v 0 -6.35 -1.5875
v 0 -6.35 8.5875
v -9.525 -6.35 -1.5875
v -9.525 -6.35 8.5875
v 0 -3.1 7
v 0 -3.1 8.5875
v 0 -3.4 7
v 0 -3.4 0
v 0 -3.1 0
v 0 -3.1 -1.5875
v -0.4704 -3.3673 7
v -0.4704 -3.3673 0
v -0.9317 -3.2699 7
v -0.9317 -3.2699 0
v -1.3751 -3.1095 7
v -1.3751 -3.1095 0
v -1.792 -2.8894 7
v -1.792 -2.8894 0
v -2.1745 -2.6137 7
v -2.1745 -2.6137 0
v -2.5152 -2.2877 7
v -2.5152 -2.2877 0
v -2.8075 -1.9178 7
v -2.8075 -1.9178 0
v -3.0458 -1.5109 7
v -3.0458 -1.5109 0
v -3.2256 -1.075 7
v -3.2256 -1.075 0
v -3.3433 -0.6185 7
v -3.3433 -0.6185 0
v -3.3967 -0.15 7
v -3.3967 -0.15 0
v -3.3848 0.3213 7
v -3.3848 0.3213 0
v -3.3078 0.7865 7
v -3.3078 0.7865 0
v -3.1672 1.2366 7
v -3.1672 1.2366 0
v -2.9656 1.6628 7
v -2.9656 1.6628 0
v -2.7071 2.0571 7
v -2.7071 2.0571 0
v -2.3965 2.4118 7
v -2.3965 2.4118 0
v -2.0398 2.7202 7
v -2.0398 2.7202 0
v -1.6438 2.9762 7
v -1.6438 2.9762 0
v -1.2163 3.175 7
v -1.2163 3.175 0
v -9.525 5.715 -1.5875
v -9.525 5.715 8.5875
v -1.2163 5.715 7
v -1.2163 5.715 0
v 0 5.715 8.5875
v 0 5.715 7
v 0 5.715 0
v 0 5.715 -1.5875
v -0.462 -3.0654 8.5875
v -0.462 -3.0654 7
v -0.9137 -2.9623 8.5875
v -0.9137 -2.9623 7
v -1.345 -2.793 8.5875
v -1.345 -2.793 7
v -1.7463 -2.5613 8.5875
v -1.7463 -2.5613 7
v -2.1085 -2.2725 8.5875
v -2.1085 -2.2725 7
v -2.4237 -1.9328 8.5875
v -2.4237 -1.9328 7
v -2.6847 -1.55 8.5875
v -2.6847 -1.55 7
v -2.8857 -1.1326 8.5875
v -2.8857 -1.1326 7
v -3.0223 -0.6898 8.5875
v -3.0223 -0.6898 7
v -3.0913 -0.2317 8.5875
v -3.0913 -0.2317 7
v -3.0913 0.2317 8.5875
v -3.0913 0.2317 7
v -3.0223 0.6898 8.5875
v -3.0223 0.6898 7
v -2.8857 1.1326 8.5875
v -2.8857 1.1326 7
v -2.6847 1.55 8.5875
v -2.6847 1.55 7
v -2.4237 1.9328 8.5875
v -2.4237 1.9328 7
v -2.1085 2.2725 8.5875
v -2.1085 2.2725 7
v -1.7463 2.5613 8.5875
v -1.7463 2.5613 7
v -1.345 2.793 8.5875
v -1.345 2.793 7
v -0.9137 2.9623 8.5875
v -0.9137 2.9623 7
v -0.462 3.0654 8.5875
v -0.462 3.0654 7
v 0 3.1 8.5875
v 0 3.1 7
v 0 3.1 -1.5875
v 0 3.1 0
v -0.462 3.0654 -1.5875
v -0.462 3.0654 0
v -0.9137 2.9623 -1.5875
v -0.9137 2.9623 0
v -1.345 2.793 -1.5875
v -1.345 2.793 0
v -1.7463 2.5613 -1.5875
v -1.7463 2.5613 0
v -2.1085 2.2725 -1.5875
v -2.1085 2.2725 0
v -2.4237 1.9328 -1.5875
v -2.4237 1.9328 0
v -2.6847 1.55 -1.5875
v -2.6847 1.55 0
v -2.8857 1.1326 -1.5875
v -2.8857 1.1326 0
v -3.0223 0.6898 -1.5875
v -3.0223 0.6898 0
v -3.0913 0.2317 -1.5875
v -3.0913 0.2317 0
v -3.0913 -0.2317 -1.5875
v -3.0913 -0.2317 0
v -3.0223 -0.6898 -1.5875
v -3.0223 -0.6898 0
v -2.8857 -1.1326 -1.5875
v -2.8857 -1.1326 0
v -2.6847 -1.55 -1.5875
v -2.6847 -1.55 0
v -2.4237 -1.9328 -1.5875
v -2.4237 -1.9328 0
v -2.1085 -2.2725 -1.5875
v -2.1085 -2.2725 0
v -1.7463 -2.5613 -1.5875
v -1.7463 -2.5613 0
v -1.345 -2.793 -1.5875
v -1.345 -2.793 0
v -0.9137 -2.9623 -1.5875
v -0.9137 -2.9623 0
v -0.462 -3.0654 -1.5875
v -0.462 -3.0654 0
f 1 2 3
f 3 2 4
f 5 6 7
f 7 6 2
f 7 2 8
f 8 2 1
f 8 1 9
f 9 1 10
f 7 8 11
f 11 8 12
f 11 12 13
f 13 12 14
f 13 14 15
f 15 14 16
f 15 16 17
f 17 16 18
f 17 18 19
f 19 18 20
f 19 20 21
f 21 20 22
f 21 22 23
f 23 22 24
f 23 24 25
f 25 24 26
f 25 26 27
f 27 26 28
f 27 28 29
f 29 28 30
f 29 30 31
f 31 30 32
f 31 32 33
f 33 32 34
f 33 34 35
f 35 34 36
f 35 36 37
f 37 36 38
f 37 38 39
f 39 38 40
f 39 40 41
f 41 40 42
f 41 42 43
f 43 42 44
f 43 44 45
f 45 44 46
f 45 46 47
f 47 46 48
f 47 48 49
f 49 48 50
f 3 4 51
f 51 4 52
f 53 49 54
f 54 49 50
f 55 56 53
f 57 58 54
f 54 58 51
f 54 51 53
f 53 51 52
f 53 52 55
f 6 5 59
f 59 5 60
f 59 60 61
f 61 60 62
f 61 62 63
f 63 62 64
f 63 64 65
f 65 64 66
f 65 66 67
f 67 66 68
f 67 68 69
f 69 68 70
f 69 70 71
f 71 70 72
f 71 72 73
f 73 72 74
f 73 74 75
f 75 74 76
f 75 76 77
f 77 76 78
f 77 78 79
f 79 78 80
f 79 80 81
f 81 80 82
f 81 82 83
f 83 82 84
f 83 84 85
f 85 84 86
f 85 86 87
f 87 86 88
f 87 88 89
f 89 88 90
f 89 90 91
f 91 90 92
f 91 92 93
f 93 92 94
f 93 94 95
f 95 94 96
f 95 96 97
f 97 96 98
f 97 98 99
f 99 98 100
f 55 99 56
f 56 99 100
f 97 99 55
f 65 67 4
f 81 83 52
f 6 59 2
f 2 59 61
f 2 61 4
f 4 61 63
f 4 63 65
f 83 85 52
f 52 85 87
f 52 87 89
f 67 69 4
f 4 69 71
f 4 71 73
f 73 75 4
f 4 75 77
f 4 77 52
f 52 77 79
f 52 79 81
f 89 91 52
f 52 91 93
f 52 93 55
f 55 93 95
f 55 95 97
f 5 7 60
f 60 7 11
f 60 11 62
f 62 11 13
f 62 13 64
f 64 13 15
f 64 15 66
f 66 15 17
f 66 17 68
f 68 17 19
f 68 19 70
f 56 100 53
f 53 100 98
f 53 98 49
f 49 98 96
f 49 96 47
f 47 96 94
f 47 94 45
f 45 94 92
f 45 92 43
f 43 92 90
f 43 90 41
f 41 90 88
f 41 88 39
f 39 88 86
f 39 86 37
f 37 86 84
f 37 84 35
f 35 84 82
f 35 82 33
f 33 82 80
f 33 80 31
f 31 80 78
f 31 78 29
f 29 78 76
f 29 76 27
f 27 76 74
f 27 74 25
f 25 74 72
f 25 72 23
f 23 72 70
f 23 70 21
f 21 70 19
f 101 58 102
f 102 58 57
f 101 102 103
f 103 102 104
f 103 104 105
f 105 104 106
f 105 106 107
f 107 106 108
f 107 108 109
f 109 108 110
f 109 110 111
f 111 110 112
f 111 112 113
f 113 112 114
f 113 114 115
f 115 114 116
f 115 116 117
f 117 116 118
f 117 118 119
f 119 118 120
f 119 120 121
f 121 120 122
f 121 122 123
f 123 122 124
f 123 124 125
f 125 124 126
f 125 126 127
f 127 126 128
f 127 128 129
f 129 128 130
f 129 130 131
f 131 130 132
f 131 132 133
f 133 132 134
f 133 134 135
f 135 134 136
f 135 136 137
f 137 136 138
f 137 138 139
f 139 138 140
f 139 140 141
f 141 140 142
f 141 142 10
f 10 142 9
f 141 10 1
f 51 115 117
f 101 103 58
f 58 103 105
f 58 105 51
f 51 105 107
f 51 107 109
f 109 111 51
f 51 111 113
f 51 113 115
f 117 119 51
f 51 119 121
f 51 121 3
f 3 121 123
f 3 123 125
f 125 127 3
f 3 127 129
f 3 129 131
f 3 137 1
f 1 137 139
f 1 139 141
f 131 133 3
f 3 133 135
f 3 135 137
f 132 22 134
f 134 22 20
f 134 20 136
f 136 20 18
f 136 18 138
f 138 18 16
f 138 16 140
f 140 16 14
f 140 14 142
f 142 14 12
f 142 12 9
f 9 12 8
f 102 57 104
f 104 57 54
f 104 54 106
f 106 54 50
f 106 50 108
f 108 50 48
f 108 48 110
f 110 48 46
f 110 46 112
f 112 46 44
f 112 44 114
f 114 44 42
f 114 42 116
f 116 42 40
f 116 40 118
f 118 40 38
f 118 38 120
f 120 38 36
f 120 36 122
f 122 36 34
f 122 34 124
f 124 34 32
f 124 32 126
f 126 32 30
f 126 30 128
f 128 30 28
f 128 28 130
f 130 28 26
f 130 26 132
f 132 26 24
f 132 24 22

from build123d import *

# Parameters (mm, degrees)
SKETCH1_W           = 3.175
SKETCH1_H           = 9.525
SKETCH1_W_2         = 8.308704394
SKETCH1_H_2         = 2.54
BOSS_EXTRUDE1_DEPTH = 7
BOSS_EXTRUDE2_DEPTH = 1.5875


with BuildPart() as part:
    # Sketch1 → Boss-Extrude1 (new body)
    with BuildSketch(Plane.XY):
        with BuildLine():
            ThreePointArc((0, -3.4), (-3.343276836, -0.618465844), (-1.216295606, 3.175))
            Line((-1.216295606, 3.175), (-6.35, 3.175))
            Line((-6.35, 3.175), (-6.35, -6.35))
            Line((-6.35, -6.35), (0, -6.35))
            Line((0, -6.35), (0, -3.4))
        make_face()
        with Locations((-7.9375, -1.5875)):
            Rectangle(SKETCH1_W, SKETCH1_H)
        with Locations((-5.370647803, 4.445)):
            Rectangle(SKETCH1_W_2, SKETCH1_H_2)
    extrude(amount=BOSS_EXTRUDE1_DEPTH)

    # Sketch2 → Boss-Extrude2 (add)
    with BuildSketch(Plane.XY.offset(7)):
        with BuildLine():
            Line((-1.216295606, 3.175), (-1.216295606, 5.715))
            Line((-1.216295606, 5.715), (-9.525, 5.715))
            Line((-9.525, 5.715), (-9.525, -6.35))
            Line((-9.525, -6.35), (-1.216295606, -6.35))
            Line((-1.216295606, -6.35), (-1.216295606, -3.175))
            ThreePointArc((-1.216295606, -3.175), (-3.4, 0), (-1.216295606, 3.175))
        make_face()
        with BuildLine():
            Line((-1.216295606, 2.851425082), (-1.216295606, 3.175))
            ThreePointArc((-1.216295606, 3.175), (-3.4, 0), (-1.216295606, -3.175))
            Line((-1.216295606, -3.175), (-1.216295606, -2.851425082))
            ThreePointArc((-1.216295606, -2.851425082), (-3.1, 0), (-1.216295606, 2.851425082))
        make_face()
        with BuildLine():
            Line((-1.216295606, -2.851425082), (-1.216295606, -3.175))
            ThreePointArc((-1.216295606, -3.175), (-0.618465844, -3.343276836), (0, -3.4))
            Line((0, -3.4), (0, -3.1))
            ThreePointArc((0, -3.1), (-0.620718231, -3.037220584), (-1.216295606, -2.851425082))
        make_face()
        with BuildLine():
            ThreePointArc((0, -3.4), (-0.618465844, -3.343276836), (-1.216295606, -3.175))
            Line((-1.216295606, -3.175), (-1.216295606, -6.35))
            Line((-1.216295606, -6.35), (0, -6.35))
            Line((0, -6.35), (0, -3.4))
        make_face()
        with BuildLine():
            Line((0, 5.715), (-1.216295606, 5.715))
            Line((-1.216295606, 5.715), (-1.216295606, 3.175))
            Line((-1.216295606, 3.175), (-1.216295606, 2.851425082))
            ThreePointArc((-1.216295606, 2.851425082), (-0.620718231, 3.037220584), (0, 3.1))
            Line((0, 3.1), (0, 5.715))
        make_face()
    boss_extrude2 = extrude(amount=BOSS_EXTRUDE2_DEPTH)

    # Mirror1: Boss-Extrude2 across plane
    add(boss_extrude2.mirror(Plane.XY.offset(3.5)))


solid = part.part
